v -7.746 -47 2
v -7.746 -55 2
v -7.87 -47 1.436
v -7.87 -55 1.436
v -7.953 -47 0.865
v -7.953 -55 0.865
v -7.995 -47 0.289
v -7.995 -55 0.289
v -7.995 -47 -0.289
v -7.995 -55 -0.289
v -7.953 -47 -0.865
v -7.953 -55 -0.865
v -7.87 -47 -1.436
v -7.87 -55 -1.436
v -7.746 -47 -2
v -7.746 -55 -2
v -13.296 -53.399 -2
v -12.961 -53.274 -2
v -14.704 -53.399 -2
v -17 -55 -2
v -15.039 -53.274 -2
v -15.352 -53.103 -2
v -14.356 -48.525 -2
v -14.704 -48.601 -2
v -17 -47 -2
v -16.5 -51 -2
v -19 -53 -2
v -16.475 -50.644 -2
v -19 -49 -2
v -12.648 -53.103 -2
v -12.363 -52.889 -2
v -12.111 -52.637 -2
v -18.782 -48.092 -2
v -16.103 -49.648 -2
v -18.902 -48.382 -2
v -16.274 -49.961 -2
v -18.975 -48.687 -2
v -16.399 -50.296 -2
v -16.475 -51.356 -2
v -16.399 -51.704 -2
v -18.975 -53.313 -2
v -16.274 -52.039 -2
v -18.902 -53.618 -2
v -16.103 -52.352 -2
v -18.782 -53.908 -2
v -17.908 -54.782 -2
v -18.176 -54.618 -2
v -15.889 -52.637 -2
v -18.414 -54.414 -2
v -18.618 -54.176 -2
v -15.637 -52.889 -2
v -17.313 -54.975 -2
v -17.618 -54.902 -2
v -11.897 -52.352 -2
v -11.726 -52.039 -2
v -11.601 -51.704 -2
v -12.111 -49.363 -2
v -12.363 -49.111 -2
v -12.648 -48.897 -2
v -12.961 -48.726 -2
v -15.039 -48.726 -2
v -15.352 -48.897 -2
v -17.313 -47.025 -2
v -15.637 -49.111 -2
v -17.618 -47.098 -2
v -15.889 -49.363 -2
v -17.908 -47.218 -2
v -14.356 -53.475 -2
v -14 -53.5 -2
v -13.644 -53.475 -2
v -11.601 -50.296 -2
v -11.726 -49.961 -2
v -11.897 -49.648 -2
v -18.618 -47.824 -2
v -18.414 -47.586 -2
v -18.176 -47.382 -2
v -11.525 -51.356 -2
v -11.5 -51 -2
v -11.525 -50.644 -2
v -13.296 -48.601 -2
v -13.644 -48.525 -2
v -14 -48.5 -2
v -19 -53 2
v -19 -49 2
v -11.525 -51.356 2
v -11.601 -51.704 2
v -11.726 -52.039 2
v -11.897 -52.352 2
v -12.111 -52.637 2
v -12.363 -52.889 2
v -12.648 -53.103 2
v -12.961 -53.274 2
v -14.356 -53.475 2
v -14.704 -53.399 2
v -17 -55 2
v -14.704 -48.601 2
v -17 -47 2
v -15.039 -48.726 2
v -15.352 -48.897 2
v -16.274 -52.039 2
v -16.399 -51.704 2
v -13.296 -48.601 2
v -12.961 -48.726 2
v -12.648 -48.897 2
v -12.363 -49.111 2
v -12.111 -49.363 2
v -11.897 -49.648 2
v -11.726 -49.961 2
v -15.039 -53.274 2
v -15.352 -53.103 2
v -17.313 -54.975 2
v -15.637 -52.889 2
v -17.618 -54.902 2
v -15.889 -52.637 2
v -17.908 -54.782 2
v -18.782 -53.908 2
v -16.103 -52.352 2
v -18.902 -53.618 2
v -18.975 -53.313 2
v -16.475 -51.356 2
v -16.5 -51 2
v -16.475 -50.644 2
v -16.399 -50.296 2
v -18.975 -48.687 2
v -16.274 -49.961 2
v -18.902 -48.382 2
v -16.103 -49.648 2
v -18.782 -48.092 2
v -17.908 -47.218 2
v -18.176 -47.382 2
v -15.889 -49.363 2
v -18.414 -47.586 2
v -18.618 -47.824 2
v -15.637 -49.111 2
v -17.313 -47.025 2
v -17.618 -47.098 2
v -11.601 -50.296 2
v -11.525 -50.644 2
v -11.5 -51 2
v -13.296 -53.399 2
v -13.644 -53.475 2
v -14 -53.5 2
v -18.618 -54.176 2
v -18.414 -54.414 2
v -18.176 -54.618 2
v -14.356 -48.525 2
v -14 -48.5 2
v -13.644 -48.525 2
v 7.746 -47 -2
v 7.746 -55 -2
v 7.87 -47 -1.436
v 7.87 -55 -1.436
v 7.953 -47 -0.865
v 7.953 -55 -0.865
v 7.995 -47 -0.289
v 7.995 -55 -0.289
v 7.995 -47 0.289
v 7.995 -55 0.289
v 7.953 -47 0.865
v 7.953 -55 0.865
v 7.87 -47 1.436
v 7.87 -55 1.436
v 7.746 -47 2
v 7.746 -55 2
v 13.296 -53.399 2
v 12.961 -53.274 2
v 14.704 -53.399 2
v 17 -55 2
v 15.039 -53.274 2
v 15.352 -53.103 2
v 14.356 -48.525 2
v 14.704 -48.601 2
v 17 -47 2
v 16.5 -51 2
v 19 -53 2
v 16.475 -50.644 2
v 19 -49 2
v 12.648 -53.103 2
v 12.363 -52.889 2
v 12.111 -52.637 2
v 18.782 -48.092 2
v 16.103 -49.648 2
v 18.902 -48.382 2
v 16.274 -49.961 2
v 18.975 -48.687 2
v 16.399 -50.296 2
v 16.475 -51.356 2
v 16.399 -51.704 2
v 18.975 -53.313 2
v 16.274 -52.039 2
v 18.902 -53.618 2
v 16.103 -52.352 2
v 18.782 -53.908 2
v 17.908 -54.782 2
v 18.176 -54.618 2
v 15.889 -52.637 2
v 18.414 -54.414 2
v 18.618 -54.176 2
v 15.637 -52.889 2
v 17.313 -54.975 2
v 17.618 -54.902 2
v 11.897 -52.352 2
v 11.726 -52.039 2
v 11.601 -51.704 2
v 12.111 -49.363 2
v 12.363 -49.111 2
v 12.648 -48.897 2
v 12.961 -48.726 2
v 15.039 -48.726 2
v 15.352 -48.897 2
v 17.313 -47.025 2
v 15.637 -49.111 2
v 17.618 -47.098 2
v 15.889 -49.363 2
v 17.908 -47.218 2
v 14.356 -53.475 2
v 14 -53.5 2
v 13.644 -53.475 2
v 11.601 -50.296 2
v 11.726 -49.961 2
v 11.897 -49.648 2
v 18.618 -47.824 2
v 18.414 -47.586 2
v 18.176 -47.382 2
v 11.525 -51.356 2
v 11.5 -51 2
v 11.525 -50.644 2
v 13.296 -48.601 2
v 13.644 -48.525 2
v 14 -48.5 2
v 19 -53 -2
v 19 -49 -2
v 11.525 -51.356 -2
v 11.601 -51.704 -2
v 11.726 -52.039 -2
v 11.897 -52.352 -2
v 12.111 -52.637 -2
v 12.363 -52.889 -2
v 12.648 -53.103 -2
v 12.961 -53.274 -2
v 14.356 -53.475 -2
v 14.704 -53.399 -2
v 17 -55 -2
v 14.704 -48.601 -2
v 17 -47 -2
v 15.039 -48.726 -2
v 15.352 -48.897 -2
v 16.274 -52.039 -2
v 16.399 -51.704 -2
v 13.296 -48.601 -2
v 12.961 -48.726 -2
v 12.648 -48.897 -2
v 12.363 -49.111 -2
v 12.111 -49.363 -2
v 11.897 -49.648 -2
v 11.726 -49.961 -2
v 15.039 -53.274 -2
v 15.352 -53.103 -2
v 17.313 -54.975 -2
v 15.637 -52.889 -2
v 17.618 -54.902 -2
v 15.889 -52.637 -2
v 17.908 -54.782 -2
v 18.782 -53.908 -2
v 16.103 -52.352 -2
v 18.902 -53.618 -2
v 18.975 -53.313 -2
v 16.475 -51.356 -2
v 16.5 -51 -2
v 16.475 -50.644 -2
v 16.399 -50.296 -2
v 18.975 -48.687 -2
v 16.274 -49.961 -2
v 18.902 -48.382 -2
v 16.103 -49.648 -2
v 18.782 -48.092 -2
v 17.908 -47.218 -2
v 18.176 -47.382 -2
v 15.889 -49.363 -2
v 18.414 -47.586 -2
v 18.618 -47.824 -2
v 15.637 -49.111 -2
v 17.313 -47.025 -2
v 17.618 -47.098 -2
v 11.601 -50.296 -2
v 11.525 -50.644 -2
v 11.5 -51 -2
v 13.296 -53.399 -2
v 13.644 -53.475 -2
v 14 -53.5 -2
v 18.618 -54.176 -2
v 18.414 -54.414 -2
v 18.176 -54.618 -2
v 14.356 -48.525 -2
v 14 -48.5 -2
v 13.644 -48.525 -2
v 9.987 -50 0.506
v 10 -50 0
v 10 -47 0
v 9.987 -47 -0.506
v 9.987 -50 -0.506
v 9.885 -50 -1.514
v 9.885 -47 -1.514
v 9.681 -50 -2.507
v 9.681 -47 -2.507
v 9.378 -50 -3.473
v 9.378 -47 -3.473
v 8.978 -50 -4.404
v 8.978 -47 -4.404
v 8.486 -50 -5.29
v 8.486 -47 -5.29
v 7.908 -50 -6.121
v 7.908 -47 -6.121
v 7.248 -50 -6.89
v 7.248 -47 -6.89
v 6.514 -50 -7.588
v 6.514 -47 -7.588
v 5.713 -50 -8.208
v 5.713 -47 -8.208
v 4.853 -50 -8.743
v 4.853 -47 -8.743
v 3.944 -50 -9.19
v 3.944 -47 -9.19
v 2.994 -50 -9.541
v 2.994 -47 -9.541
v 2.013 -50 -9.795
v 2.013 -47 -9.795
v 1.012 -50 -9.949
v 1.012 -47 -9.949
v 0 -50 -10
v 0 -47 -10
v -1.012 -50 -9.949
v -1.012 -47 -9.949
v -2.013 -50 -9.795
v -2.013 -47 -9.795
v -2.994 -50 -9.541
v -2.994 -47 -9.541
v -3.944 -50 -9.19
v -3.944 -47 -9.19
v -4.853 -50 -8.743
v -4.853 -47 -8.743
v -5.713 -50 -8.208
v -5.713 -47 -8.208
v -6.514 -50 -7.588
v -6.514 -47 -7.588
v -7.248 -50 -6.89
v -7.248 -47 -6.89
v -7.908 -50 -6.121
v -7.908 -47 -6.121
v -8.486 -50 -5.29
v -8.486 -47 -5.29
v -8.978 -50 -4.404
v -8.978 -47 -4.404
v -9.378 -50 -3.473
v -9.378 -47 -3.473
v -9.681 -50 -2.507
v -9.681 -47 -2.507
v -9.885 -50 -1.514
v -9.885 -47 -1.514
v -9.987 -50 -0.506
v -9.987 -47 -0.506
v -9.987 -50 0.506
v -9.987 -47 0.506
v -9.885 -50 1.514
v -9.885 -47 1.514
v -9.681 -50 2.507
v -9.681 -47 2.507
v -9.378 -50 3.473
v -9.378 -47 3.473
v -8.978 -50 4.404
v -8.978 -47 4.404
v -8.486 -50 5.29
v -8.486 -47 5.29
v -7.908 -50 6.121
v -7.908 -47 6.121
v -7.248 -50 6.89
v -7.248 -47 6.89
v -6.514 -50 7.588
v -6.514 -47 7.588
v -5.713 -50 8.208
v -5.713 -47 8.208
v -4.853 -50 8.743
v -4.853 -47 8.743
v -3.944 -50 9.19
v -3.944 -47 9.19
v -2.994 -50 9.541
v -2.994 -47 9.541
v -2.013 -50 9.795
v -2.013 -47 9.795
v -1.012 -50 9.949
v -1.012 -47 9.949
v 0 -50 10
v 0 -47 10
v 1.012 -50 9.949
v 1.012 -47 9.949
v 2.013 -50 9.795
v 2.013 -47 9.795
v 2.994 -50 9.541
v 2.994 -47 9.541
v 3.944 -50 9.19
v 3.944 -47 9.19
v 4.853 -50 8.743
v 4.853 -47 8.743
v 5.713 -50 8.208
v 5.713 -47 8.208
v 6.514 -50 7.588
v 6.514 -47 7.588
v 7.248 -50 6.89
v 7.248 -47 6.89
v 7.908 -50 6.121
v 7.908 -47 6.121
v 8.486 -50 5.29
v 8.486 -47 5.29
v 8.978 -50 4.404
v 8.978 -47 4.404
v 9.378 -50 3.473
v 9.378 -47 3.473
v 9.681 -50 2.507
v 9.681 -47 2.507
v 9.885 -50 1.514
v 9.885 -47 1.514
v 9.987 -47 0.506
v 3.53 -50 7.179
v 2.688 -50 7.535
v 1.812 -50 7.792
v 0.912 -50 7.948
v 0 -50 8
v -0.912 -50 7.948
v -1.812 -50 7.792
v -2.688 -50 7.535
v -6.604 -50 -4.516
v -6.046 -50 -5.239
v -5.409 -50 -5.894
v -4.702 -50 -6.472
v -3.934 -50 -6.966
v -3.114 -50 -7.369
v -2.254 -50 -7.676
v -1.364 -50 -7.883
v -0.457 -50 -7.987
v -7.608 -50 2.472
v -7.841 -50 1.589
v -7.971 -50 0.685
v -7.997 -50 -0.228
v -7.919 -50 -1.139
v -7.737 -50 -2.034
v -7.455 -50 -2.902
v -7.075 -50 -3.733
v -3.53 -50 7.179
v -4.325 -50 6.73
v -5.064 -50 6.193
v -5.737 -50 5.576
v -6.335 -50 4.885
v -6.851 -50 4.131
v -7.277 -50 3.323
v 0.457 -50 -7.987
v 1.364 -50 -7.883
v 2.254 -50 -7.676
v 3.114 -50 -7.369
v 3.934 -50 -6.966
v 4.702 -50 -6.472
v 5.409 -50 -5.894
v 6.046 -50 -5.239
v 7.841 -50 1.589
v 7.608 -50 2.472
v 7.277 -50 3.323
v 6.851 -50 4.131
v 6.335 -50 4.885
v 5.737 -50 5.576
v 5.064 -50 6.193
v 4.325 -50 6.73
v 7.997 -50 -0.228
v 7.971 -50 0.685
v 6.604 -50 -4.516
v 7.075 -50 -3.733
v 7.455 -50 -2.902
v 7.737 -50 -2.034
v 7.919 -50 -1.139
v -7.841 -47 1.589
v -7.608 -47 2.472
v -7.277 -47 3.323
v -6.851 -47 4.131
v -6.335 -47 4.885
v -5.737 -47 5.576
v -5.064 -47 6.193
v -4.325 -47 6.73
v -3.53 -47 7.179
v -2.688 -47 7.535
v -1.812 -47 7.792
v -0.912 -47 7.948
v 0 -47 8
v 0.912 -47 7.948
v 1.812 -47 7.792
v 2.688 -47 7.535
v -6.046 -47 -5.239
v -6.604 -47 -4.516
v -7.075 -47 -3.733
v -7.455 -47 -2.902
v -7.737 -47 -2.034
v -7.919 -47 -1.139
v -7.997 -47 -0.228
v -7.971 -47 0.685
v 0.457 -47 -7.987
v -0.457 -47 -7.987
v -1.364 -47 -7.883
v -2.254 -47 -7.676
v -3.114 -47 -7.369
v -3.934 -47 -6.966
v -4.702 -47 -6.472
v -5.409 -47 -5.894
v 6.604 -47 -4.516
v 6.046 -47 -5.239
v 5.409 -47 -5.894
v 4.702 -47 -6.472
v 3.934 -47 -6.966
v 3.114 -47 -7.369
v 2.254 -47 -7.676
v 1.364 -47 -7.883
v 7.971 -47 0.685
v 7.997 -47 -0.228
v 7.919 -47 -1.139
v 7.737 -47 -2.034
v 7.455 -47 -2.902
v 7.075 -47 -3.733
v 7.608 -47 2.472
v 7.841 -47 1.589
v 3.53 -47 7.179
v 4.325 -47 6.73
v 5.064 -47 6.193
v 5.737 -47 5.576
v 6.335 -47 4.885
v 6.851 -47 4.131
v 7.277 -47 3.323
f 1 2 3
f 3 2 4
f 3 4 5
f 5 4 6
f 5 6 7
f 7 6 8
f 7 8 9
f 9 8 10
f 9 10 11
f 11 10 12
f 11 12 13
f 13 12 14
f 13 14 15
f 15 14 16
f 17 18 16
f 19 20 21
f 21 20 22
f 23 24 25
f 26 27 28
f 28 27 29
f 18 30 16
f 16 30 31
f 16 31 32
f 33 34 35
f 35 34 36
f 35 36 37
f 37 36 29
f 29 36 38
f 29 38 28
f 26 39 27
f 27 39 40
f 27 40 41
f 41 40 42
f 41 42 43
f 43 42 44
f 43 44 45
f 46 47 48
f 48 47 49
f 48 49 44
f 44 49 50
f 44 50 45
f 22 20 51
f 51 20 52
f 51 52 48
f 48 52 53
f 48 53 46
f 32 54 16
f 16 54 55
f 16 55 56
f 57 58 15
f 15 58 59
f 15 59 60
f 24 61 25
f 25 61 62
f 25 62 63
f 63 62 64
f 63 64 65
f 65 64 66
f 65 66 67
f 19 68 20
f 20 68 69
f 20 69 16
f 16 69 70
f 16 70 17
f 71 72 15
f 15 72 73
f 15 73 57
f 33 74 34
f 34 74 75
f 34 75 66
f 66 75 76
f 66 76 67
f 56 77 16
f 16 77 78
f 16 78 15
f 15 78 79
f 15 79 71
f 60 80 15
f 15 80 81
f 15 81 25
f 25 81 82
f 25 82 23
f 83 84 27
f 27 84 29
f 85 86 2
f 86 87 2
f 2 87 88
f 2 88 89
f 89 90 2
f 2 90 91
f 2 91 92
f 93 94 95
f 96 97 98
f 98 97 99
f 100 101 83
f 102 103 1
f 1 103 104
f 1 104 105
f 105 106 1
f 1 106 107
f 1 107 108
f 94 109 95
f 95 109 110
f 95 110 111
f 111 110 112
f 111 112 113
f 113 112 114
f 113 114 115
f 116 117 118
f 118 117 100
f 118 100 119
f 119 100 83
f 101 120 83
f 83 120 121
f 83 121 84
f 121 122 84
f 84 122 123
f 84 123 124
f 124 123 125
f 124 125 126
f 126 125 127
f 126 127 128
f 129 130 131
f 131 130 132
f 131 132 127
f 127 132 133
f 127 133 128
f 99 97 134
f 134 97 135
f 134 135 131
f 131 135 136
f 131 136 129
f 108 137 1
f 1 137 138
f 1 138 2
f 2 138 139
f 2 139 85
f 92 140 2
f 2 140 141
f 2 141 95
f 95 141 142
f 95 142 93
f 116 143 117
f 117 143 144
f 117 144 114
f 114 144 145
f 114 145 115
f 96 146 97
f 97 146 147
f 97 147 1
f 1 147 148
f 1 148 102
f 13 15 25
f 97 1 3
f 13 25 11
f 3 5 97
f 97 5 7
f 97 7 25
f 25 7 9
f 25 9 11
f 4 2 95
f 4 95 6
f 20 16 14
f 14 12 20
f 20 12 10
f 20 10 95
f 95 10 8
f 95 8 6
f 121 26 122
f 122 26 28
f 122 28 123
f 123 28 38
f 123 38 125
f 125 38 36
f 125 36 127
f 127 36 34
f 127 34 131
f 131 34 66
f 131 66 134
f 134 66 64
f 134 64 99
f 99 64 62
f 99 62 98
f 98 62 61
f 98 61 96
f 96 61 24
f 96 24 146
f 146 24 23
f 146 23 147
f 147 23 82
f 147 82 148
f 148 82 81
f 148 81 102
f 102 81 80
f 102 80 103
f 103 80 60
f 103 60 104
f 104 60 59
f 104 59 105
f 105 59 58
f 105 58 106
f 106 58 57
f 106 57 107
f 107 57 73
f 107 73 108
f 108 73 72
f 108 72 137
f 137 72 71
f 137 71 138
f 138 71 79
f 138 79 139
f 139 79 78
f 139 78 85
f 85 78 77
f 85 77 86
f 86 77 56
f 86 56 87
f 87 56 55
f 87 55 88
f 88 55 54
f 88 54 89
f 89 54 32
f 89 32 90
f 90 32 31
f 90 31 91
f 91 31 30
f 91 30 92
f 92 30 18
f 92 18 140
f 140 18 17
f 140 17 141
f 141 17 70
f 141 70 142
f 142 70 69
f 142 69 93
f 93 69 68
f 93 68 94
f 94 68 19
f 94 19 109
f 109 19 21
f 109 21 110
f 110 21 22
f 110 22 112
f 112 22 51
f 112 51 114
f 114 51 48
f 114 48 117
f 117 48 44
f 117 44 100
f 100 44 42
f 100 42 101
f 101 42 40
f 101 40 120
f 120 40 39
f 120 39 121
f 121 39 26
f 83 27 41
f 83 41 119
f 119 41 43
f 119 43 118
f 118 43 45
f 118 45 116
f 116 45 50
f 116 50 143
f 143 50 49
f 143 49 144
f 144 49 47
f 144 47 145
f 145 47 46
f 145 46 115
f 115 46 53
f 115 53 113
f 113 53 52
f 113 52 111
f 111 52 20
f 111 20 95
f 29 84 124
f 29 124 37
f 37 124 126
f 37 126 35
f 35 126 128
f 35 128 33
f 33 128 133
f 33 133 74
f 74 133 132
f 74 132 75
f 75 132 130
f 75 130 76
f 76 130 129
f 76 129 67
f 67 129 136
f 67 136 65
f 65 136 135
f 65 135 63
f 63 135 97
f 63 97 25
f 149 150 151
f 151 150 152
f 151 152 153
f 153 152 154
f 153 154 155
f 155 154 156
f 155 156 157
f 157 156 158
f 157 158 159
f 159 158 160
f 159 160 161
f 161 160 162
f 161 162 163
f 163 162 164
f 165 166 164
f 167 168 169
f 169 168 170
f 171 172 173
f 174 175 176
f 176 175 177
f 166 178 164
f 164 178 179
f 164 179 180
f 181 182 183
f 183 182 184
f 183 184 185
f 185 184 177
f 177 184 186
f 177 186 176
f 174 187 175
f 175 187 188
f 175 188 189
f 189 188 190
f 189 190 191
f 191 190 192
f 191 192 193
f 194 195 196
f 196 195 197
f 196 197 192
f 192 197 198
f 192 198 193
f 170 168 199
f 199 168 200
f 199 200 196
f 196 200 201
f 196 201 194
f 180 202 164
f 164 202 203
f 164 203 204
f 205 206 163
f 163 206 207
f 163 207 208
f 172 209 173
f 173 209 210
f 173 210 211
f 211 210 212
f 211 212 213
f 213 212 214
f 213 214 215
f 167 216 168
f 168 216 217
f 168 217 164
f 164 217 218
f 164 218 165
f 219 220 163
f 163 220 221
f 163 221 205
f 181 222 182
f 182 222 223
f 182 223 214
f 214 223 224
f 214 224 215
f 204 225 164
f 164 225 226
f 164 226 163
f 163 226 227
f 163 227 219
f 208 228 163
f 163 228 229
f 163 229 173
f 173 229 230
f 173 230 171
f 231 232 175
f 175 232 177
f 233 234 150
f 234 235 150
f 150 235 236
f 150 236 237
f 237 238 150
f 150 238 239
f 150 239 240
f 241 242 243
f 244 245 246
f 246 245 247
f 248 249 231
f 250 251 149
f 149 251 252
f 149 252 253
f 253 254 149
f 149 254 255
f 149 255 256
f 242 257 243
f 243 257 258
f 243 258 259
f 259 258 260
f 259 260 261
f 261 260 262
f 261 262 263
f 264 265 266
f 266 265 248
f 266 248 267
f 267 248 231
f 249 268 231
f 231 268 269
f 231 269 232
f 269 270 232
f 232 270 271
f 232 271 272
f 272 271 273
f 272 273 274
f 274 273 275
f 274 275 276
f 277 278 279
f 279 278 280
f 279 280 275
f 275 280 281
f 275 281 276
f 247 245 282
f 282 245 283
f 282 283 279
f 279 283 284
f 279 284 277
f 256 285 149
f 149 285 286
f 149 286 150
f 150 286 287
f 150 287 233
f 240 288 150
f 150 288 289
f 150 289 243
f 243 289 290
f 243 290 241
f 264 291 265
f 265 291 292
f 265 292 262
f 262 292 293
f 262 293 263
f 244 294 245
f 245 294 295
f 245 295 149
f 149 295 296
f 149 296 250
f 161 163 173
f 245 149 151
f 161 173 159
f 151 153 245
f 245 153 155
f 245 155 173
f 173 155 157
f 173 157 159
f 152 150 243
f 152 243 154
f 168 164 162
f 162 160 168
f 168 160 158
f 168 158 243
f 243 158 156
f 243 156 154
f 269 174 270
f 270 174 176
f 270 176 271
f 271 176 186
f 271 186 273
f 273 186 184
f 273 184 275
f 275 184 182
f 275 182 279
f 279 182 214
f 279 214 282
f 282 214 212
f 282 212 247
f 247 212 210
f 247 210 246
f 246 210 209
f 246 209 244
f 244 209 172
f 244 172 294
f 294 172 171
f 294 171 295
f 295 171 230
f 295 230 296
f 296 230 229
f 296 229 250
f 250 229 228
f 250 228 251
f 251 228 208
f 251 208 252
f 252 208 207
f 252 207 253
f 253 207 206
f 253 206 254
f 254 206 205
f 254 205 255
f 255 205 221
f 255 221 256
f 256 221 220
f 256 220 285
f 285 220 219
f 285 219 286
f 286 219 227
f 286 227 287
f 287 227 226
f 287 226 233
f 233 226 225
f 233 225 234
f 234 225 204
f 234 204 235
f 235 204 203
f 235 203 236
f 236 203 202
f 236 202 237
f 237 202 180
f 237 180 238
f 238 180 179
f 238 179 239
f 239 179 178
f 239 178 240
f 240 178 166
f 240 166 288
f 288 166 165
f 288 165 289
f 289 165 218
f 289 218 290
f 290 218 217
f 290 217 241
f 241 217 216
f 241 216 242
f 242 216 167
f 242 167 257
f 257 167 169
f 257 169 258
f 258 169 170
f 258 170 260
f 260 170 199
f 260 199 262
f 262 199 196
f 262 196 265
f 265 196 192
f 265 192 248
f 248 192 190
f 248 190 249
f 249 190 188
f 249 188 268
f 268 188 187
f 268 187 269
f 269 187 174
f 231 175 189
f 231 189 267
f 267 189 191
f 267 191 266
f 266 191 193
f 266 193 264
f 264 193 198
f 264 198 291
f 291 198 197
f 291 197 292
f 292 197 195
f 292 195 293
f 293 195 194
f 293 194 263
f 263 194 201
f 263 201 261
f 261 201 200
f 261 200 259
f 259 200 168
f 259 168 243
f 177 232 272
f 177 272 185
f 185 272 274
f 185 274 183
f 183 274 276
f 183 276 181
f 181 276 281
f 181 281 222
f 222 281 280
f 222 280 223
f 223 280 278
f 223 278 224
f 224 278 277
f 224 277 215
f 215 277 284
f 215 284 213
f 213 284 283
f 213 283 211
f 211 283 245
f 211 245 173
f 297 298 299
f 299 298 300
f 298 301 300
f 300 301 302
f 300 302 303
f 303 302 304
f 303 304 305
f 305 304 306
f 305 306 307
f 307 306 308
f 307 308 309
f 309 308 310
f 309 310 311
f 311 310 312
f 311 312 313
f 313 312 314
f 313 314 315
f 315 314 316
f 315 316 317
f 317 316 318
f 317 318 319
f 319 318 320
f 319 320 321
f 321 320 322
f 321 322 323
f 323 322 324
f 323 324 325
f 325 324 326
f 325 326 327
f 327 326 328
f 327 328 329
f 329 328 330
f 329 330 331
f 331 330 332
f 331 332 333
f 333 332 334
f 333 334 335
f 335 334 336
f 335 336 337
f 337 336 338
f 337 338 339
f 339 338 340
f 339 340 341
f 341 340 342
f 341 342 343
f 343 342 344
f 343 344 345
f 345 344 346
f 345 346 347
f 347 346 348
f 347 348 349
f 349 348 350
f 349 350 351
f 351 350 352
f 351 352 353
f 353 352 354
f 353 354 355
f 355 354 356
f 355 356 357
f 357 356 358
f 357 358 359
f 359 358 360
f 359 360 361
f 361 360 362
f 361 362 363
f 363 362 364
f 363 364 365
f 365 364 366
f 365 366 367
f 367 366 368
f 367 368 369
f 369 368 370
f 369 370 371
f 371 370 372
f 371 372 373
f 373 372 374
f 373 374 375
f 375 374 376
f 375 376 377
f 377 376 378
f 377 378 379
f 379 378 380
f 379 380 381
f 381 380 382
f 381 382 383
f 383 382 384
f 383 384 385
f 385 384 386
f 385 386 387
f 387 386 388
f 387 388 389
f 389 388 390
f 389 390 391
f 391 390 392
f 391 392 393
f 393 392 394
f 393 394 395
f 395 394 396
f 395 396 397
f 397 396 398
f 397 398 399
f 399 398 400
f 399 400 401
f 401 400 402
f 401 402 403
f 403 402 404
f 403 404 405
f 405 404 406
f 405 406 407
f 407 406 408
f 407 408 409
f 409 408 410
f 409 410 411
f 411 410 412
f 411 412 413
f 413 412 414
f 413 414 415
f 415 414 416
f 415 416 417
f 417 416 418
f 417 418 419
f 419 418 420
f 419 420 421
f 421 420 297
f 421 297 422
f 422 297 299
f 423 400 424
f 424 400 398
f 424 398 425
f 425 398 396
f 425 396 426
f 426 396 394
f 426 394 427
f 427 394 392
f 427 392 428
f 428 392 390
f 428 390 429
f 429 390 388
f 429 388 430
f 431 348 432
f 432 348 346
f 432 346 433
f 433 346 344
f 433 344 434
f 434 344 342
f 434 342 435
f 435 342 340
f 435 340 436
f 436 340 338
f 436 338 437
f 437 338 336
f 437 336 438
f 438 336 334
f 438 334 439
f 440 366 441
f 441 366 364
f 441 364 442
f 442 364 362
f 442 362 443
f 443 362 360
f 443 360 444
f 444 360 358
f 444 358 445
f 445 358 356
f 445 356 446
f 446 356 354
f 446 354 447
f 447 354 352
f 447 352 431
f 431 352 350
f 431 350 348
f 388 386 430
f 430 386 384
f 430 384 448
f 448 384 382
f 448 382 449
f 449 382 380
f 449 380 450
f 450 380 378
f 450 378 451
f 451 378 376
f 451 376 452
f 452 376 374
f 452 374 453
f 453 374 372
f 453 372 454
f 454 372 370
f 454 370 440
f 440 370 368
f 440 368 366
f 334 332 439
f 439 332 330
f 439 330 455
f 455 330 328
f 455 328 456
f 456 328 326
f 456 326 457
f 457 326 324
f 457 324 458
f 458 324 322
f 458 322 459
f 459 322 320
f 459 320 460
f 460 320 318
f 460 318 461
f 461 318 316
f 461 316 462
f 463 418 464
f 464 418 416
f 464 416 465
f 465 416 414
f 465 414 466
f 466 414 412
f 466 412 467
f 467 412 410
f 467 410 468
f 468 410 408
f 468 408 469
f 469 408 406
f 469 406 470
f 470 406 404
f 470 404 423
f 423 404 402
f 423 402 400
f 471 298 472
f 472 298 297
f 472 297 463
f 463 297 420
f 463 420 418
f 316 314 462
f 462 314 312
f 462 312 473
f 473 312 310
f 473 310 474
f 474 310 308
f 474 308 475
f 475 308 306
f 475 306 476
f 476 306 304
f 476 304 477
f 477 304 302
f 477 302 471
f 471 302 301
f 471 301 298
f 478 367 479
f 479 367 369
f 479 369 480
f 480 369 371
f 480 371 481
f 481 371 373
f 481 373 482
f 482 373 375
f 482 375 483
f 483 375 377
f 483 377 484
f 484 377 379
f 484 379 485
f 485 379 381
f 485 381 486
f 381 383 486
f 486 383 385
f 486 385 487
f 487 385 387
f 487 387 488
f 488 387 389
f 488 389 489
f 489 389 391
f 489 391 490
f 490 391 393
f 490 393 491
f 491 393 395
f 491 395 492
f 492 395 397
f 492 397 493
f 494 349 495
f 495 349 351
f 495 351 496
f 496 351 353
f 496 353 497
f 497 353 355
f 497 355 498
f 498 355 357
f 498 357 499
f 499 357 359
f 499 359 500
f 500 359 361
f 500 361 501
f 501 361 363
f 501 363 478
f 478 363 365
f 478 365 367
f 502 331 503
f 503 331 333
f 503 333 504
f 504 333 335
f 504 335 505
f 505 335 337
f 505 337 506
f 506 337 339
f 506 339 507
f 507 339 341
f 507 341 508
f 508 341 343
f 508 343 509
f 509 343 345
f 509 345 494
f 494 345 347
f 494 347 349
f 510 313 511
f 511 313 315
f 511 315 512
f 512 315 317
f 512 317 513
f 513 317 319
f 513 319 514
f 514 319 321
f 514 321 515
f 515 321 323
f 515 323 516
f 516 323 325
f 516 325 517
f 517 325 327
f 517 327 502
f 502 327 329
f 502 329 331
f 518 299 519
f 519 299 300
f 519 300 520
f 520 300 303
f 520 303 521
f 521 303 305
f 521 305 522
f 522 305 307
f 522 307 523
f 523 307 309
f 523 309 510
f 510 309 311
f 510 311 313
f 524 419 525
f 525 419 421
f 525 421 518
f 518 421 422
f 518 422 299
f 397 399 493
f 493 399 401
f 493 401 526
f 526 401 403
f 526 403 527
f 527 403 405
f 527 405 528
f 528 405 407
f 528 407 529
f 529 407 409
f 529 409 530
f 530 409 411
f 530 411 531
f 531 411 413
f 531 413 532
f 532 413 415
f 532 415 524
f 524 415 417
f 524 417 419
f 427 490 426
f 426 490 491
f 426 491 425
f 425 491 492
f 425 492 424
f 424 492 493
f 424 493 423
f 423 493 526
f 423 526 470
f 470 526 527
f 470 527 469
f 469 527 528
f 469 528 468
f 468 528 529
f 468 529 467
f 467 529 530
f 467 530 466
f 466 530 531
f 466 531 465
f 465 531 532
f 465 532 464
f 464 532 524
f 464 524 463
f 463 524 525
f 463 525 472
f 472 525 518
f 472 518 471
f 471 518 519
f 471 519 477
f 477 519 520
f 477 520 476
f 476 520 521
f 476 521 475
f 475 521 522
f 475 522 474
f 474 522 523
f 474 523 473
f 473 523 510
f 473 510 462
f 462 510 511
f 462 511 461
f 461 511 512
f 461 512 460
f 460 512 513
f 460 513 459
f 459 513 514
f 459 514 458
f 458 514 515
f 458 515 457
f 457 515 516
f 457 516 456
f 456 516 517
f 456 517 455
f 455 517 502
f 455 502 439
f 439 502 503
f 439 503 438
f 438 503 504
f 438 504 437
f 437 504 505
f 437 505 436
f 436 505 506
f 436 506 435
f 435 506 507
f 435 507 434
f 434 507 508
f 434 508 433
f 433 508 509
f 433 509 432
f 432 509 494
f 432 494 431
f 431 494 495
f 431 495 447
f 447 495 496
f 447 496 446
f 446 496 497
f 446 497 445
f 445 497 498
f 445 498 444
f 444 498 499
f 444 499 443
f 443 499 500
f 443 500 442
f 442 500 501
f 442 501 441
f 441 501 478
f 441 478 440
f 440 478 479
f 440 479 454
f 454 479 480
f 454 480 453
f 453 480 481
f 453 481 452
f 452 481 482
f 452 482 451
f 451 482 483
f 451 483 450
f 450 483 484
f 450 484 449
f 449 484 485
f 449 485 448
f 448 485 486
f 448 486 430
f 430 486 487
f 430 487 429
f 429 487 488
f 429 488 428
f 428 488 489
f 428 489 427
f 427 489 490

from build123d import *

# Parameters (mm, degrees)
EXTRUDE_1_DEPTH          = 8
SKETCH_2_R               = 2.5
CUT_EXTRUDE_1_DEPTH      = 5
FILLET_1_R               = 2
PATTERN_CIRCULAR_1_COUNT = 2
SKETCH_3_R               = 10
SKETCH_3_R_2             = 8
EXTRUDE_1_2_DEPTH        = 3


with BuildPart() as part:
    # 草图1 → Extrude 1 (new body)
    with BuildSketch(Plane(origin=(0, -55, 0), x_dir=(-1, 0, 0), z_dir=(0, -1, 0))):
        with BuildLine():
            Line((7.745966692, 2), (19, 2))
            Line((19, 2), (19, -2))
            Line((19, -2), (7.745966692, -2))
            ThreePointArc((7.745966692, -2), (8, 0), (7.745966692, 2))
        make_face()
    extrude(amount=-EXTRUDE_1_DEPTH)

    # 草图2 → 切除-拉伸1 (cut, through all)
    with BuildSketch(Plane(origin=(0, 0, -2), x_dir=(-1, 0, 0), z_dir=(0, 0, -1))):
        with Locations((14, -51)):
            Circle(SKETCH_2_R)
    extrude(amount=-CUT_EXTRUDE_1_DEPTH, mode=Mode.SUBTRACT)

    # 圆角1
    fillet_1_edges = [part.edges().sort_by_distance(p)[0] for p in [
        (-19, -47, 0),
        (-19, -55, 0),
    ]]
    fillet(fillet_1_edges, radius=FILLET_1_R)


with BuildPart() as pattern_circular_1_1:
    # 阵列(圆周)1: pattern copy
    add(part.part.rotate(Axis((0, 0, 0), (0, 1, 0)), 1 * 360 / PATTERN_CIRCULAR_1_COUNT))


with BuildPart() as body_3:
    # 草图3 → Extrude 1 2 (new body)
    with BuildSketch(Plane(origin=(0, -47, 0), x_dir=(1, 0, 0), z_dir=(0, 1, 0))):
        Circle(SKETCH_3_R)
        Circle(SKETCH_3_R_2, mode=Mode.SUBTRACT)
    extrude(amount=-EXTRUDE_1_2_DEPTH)


solid = Compound([part.part, pattern_circular_1_1.part, body_3.part])
